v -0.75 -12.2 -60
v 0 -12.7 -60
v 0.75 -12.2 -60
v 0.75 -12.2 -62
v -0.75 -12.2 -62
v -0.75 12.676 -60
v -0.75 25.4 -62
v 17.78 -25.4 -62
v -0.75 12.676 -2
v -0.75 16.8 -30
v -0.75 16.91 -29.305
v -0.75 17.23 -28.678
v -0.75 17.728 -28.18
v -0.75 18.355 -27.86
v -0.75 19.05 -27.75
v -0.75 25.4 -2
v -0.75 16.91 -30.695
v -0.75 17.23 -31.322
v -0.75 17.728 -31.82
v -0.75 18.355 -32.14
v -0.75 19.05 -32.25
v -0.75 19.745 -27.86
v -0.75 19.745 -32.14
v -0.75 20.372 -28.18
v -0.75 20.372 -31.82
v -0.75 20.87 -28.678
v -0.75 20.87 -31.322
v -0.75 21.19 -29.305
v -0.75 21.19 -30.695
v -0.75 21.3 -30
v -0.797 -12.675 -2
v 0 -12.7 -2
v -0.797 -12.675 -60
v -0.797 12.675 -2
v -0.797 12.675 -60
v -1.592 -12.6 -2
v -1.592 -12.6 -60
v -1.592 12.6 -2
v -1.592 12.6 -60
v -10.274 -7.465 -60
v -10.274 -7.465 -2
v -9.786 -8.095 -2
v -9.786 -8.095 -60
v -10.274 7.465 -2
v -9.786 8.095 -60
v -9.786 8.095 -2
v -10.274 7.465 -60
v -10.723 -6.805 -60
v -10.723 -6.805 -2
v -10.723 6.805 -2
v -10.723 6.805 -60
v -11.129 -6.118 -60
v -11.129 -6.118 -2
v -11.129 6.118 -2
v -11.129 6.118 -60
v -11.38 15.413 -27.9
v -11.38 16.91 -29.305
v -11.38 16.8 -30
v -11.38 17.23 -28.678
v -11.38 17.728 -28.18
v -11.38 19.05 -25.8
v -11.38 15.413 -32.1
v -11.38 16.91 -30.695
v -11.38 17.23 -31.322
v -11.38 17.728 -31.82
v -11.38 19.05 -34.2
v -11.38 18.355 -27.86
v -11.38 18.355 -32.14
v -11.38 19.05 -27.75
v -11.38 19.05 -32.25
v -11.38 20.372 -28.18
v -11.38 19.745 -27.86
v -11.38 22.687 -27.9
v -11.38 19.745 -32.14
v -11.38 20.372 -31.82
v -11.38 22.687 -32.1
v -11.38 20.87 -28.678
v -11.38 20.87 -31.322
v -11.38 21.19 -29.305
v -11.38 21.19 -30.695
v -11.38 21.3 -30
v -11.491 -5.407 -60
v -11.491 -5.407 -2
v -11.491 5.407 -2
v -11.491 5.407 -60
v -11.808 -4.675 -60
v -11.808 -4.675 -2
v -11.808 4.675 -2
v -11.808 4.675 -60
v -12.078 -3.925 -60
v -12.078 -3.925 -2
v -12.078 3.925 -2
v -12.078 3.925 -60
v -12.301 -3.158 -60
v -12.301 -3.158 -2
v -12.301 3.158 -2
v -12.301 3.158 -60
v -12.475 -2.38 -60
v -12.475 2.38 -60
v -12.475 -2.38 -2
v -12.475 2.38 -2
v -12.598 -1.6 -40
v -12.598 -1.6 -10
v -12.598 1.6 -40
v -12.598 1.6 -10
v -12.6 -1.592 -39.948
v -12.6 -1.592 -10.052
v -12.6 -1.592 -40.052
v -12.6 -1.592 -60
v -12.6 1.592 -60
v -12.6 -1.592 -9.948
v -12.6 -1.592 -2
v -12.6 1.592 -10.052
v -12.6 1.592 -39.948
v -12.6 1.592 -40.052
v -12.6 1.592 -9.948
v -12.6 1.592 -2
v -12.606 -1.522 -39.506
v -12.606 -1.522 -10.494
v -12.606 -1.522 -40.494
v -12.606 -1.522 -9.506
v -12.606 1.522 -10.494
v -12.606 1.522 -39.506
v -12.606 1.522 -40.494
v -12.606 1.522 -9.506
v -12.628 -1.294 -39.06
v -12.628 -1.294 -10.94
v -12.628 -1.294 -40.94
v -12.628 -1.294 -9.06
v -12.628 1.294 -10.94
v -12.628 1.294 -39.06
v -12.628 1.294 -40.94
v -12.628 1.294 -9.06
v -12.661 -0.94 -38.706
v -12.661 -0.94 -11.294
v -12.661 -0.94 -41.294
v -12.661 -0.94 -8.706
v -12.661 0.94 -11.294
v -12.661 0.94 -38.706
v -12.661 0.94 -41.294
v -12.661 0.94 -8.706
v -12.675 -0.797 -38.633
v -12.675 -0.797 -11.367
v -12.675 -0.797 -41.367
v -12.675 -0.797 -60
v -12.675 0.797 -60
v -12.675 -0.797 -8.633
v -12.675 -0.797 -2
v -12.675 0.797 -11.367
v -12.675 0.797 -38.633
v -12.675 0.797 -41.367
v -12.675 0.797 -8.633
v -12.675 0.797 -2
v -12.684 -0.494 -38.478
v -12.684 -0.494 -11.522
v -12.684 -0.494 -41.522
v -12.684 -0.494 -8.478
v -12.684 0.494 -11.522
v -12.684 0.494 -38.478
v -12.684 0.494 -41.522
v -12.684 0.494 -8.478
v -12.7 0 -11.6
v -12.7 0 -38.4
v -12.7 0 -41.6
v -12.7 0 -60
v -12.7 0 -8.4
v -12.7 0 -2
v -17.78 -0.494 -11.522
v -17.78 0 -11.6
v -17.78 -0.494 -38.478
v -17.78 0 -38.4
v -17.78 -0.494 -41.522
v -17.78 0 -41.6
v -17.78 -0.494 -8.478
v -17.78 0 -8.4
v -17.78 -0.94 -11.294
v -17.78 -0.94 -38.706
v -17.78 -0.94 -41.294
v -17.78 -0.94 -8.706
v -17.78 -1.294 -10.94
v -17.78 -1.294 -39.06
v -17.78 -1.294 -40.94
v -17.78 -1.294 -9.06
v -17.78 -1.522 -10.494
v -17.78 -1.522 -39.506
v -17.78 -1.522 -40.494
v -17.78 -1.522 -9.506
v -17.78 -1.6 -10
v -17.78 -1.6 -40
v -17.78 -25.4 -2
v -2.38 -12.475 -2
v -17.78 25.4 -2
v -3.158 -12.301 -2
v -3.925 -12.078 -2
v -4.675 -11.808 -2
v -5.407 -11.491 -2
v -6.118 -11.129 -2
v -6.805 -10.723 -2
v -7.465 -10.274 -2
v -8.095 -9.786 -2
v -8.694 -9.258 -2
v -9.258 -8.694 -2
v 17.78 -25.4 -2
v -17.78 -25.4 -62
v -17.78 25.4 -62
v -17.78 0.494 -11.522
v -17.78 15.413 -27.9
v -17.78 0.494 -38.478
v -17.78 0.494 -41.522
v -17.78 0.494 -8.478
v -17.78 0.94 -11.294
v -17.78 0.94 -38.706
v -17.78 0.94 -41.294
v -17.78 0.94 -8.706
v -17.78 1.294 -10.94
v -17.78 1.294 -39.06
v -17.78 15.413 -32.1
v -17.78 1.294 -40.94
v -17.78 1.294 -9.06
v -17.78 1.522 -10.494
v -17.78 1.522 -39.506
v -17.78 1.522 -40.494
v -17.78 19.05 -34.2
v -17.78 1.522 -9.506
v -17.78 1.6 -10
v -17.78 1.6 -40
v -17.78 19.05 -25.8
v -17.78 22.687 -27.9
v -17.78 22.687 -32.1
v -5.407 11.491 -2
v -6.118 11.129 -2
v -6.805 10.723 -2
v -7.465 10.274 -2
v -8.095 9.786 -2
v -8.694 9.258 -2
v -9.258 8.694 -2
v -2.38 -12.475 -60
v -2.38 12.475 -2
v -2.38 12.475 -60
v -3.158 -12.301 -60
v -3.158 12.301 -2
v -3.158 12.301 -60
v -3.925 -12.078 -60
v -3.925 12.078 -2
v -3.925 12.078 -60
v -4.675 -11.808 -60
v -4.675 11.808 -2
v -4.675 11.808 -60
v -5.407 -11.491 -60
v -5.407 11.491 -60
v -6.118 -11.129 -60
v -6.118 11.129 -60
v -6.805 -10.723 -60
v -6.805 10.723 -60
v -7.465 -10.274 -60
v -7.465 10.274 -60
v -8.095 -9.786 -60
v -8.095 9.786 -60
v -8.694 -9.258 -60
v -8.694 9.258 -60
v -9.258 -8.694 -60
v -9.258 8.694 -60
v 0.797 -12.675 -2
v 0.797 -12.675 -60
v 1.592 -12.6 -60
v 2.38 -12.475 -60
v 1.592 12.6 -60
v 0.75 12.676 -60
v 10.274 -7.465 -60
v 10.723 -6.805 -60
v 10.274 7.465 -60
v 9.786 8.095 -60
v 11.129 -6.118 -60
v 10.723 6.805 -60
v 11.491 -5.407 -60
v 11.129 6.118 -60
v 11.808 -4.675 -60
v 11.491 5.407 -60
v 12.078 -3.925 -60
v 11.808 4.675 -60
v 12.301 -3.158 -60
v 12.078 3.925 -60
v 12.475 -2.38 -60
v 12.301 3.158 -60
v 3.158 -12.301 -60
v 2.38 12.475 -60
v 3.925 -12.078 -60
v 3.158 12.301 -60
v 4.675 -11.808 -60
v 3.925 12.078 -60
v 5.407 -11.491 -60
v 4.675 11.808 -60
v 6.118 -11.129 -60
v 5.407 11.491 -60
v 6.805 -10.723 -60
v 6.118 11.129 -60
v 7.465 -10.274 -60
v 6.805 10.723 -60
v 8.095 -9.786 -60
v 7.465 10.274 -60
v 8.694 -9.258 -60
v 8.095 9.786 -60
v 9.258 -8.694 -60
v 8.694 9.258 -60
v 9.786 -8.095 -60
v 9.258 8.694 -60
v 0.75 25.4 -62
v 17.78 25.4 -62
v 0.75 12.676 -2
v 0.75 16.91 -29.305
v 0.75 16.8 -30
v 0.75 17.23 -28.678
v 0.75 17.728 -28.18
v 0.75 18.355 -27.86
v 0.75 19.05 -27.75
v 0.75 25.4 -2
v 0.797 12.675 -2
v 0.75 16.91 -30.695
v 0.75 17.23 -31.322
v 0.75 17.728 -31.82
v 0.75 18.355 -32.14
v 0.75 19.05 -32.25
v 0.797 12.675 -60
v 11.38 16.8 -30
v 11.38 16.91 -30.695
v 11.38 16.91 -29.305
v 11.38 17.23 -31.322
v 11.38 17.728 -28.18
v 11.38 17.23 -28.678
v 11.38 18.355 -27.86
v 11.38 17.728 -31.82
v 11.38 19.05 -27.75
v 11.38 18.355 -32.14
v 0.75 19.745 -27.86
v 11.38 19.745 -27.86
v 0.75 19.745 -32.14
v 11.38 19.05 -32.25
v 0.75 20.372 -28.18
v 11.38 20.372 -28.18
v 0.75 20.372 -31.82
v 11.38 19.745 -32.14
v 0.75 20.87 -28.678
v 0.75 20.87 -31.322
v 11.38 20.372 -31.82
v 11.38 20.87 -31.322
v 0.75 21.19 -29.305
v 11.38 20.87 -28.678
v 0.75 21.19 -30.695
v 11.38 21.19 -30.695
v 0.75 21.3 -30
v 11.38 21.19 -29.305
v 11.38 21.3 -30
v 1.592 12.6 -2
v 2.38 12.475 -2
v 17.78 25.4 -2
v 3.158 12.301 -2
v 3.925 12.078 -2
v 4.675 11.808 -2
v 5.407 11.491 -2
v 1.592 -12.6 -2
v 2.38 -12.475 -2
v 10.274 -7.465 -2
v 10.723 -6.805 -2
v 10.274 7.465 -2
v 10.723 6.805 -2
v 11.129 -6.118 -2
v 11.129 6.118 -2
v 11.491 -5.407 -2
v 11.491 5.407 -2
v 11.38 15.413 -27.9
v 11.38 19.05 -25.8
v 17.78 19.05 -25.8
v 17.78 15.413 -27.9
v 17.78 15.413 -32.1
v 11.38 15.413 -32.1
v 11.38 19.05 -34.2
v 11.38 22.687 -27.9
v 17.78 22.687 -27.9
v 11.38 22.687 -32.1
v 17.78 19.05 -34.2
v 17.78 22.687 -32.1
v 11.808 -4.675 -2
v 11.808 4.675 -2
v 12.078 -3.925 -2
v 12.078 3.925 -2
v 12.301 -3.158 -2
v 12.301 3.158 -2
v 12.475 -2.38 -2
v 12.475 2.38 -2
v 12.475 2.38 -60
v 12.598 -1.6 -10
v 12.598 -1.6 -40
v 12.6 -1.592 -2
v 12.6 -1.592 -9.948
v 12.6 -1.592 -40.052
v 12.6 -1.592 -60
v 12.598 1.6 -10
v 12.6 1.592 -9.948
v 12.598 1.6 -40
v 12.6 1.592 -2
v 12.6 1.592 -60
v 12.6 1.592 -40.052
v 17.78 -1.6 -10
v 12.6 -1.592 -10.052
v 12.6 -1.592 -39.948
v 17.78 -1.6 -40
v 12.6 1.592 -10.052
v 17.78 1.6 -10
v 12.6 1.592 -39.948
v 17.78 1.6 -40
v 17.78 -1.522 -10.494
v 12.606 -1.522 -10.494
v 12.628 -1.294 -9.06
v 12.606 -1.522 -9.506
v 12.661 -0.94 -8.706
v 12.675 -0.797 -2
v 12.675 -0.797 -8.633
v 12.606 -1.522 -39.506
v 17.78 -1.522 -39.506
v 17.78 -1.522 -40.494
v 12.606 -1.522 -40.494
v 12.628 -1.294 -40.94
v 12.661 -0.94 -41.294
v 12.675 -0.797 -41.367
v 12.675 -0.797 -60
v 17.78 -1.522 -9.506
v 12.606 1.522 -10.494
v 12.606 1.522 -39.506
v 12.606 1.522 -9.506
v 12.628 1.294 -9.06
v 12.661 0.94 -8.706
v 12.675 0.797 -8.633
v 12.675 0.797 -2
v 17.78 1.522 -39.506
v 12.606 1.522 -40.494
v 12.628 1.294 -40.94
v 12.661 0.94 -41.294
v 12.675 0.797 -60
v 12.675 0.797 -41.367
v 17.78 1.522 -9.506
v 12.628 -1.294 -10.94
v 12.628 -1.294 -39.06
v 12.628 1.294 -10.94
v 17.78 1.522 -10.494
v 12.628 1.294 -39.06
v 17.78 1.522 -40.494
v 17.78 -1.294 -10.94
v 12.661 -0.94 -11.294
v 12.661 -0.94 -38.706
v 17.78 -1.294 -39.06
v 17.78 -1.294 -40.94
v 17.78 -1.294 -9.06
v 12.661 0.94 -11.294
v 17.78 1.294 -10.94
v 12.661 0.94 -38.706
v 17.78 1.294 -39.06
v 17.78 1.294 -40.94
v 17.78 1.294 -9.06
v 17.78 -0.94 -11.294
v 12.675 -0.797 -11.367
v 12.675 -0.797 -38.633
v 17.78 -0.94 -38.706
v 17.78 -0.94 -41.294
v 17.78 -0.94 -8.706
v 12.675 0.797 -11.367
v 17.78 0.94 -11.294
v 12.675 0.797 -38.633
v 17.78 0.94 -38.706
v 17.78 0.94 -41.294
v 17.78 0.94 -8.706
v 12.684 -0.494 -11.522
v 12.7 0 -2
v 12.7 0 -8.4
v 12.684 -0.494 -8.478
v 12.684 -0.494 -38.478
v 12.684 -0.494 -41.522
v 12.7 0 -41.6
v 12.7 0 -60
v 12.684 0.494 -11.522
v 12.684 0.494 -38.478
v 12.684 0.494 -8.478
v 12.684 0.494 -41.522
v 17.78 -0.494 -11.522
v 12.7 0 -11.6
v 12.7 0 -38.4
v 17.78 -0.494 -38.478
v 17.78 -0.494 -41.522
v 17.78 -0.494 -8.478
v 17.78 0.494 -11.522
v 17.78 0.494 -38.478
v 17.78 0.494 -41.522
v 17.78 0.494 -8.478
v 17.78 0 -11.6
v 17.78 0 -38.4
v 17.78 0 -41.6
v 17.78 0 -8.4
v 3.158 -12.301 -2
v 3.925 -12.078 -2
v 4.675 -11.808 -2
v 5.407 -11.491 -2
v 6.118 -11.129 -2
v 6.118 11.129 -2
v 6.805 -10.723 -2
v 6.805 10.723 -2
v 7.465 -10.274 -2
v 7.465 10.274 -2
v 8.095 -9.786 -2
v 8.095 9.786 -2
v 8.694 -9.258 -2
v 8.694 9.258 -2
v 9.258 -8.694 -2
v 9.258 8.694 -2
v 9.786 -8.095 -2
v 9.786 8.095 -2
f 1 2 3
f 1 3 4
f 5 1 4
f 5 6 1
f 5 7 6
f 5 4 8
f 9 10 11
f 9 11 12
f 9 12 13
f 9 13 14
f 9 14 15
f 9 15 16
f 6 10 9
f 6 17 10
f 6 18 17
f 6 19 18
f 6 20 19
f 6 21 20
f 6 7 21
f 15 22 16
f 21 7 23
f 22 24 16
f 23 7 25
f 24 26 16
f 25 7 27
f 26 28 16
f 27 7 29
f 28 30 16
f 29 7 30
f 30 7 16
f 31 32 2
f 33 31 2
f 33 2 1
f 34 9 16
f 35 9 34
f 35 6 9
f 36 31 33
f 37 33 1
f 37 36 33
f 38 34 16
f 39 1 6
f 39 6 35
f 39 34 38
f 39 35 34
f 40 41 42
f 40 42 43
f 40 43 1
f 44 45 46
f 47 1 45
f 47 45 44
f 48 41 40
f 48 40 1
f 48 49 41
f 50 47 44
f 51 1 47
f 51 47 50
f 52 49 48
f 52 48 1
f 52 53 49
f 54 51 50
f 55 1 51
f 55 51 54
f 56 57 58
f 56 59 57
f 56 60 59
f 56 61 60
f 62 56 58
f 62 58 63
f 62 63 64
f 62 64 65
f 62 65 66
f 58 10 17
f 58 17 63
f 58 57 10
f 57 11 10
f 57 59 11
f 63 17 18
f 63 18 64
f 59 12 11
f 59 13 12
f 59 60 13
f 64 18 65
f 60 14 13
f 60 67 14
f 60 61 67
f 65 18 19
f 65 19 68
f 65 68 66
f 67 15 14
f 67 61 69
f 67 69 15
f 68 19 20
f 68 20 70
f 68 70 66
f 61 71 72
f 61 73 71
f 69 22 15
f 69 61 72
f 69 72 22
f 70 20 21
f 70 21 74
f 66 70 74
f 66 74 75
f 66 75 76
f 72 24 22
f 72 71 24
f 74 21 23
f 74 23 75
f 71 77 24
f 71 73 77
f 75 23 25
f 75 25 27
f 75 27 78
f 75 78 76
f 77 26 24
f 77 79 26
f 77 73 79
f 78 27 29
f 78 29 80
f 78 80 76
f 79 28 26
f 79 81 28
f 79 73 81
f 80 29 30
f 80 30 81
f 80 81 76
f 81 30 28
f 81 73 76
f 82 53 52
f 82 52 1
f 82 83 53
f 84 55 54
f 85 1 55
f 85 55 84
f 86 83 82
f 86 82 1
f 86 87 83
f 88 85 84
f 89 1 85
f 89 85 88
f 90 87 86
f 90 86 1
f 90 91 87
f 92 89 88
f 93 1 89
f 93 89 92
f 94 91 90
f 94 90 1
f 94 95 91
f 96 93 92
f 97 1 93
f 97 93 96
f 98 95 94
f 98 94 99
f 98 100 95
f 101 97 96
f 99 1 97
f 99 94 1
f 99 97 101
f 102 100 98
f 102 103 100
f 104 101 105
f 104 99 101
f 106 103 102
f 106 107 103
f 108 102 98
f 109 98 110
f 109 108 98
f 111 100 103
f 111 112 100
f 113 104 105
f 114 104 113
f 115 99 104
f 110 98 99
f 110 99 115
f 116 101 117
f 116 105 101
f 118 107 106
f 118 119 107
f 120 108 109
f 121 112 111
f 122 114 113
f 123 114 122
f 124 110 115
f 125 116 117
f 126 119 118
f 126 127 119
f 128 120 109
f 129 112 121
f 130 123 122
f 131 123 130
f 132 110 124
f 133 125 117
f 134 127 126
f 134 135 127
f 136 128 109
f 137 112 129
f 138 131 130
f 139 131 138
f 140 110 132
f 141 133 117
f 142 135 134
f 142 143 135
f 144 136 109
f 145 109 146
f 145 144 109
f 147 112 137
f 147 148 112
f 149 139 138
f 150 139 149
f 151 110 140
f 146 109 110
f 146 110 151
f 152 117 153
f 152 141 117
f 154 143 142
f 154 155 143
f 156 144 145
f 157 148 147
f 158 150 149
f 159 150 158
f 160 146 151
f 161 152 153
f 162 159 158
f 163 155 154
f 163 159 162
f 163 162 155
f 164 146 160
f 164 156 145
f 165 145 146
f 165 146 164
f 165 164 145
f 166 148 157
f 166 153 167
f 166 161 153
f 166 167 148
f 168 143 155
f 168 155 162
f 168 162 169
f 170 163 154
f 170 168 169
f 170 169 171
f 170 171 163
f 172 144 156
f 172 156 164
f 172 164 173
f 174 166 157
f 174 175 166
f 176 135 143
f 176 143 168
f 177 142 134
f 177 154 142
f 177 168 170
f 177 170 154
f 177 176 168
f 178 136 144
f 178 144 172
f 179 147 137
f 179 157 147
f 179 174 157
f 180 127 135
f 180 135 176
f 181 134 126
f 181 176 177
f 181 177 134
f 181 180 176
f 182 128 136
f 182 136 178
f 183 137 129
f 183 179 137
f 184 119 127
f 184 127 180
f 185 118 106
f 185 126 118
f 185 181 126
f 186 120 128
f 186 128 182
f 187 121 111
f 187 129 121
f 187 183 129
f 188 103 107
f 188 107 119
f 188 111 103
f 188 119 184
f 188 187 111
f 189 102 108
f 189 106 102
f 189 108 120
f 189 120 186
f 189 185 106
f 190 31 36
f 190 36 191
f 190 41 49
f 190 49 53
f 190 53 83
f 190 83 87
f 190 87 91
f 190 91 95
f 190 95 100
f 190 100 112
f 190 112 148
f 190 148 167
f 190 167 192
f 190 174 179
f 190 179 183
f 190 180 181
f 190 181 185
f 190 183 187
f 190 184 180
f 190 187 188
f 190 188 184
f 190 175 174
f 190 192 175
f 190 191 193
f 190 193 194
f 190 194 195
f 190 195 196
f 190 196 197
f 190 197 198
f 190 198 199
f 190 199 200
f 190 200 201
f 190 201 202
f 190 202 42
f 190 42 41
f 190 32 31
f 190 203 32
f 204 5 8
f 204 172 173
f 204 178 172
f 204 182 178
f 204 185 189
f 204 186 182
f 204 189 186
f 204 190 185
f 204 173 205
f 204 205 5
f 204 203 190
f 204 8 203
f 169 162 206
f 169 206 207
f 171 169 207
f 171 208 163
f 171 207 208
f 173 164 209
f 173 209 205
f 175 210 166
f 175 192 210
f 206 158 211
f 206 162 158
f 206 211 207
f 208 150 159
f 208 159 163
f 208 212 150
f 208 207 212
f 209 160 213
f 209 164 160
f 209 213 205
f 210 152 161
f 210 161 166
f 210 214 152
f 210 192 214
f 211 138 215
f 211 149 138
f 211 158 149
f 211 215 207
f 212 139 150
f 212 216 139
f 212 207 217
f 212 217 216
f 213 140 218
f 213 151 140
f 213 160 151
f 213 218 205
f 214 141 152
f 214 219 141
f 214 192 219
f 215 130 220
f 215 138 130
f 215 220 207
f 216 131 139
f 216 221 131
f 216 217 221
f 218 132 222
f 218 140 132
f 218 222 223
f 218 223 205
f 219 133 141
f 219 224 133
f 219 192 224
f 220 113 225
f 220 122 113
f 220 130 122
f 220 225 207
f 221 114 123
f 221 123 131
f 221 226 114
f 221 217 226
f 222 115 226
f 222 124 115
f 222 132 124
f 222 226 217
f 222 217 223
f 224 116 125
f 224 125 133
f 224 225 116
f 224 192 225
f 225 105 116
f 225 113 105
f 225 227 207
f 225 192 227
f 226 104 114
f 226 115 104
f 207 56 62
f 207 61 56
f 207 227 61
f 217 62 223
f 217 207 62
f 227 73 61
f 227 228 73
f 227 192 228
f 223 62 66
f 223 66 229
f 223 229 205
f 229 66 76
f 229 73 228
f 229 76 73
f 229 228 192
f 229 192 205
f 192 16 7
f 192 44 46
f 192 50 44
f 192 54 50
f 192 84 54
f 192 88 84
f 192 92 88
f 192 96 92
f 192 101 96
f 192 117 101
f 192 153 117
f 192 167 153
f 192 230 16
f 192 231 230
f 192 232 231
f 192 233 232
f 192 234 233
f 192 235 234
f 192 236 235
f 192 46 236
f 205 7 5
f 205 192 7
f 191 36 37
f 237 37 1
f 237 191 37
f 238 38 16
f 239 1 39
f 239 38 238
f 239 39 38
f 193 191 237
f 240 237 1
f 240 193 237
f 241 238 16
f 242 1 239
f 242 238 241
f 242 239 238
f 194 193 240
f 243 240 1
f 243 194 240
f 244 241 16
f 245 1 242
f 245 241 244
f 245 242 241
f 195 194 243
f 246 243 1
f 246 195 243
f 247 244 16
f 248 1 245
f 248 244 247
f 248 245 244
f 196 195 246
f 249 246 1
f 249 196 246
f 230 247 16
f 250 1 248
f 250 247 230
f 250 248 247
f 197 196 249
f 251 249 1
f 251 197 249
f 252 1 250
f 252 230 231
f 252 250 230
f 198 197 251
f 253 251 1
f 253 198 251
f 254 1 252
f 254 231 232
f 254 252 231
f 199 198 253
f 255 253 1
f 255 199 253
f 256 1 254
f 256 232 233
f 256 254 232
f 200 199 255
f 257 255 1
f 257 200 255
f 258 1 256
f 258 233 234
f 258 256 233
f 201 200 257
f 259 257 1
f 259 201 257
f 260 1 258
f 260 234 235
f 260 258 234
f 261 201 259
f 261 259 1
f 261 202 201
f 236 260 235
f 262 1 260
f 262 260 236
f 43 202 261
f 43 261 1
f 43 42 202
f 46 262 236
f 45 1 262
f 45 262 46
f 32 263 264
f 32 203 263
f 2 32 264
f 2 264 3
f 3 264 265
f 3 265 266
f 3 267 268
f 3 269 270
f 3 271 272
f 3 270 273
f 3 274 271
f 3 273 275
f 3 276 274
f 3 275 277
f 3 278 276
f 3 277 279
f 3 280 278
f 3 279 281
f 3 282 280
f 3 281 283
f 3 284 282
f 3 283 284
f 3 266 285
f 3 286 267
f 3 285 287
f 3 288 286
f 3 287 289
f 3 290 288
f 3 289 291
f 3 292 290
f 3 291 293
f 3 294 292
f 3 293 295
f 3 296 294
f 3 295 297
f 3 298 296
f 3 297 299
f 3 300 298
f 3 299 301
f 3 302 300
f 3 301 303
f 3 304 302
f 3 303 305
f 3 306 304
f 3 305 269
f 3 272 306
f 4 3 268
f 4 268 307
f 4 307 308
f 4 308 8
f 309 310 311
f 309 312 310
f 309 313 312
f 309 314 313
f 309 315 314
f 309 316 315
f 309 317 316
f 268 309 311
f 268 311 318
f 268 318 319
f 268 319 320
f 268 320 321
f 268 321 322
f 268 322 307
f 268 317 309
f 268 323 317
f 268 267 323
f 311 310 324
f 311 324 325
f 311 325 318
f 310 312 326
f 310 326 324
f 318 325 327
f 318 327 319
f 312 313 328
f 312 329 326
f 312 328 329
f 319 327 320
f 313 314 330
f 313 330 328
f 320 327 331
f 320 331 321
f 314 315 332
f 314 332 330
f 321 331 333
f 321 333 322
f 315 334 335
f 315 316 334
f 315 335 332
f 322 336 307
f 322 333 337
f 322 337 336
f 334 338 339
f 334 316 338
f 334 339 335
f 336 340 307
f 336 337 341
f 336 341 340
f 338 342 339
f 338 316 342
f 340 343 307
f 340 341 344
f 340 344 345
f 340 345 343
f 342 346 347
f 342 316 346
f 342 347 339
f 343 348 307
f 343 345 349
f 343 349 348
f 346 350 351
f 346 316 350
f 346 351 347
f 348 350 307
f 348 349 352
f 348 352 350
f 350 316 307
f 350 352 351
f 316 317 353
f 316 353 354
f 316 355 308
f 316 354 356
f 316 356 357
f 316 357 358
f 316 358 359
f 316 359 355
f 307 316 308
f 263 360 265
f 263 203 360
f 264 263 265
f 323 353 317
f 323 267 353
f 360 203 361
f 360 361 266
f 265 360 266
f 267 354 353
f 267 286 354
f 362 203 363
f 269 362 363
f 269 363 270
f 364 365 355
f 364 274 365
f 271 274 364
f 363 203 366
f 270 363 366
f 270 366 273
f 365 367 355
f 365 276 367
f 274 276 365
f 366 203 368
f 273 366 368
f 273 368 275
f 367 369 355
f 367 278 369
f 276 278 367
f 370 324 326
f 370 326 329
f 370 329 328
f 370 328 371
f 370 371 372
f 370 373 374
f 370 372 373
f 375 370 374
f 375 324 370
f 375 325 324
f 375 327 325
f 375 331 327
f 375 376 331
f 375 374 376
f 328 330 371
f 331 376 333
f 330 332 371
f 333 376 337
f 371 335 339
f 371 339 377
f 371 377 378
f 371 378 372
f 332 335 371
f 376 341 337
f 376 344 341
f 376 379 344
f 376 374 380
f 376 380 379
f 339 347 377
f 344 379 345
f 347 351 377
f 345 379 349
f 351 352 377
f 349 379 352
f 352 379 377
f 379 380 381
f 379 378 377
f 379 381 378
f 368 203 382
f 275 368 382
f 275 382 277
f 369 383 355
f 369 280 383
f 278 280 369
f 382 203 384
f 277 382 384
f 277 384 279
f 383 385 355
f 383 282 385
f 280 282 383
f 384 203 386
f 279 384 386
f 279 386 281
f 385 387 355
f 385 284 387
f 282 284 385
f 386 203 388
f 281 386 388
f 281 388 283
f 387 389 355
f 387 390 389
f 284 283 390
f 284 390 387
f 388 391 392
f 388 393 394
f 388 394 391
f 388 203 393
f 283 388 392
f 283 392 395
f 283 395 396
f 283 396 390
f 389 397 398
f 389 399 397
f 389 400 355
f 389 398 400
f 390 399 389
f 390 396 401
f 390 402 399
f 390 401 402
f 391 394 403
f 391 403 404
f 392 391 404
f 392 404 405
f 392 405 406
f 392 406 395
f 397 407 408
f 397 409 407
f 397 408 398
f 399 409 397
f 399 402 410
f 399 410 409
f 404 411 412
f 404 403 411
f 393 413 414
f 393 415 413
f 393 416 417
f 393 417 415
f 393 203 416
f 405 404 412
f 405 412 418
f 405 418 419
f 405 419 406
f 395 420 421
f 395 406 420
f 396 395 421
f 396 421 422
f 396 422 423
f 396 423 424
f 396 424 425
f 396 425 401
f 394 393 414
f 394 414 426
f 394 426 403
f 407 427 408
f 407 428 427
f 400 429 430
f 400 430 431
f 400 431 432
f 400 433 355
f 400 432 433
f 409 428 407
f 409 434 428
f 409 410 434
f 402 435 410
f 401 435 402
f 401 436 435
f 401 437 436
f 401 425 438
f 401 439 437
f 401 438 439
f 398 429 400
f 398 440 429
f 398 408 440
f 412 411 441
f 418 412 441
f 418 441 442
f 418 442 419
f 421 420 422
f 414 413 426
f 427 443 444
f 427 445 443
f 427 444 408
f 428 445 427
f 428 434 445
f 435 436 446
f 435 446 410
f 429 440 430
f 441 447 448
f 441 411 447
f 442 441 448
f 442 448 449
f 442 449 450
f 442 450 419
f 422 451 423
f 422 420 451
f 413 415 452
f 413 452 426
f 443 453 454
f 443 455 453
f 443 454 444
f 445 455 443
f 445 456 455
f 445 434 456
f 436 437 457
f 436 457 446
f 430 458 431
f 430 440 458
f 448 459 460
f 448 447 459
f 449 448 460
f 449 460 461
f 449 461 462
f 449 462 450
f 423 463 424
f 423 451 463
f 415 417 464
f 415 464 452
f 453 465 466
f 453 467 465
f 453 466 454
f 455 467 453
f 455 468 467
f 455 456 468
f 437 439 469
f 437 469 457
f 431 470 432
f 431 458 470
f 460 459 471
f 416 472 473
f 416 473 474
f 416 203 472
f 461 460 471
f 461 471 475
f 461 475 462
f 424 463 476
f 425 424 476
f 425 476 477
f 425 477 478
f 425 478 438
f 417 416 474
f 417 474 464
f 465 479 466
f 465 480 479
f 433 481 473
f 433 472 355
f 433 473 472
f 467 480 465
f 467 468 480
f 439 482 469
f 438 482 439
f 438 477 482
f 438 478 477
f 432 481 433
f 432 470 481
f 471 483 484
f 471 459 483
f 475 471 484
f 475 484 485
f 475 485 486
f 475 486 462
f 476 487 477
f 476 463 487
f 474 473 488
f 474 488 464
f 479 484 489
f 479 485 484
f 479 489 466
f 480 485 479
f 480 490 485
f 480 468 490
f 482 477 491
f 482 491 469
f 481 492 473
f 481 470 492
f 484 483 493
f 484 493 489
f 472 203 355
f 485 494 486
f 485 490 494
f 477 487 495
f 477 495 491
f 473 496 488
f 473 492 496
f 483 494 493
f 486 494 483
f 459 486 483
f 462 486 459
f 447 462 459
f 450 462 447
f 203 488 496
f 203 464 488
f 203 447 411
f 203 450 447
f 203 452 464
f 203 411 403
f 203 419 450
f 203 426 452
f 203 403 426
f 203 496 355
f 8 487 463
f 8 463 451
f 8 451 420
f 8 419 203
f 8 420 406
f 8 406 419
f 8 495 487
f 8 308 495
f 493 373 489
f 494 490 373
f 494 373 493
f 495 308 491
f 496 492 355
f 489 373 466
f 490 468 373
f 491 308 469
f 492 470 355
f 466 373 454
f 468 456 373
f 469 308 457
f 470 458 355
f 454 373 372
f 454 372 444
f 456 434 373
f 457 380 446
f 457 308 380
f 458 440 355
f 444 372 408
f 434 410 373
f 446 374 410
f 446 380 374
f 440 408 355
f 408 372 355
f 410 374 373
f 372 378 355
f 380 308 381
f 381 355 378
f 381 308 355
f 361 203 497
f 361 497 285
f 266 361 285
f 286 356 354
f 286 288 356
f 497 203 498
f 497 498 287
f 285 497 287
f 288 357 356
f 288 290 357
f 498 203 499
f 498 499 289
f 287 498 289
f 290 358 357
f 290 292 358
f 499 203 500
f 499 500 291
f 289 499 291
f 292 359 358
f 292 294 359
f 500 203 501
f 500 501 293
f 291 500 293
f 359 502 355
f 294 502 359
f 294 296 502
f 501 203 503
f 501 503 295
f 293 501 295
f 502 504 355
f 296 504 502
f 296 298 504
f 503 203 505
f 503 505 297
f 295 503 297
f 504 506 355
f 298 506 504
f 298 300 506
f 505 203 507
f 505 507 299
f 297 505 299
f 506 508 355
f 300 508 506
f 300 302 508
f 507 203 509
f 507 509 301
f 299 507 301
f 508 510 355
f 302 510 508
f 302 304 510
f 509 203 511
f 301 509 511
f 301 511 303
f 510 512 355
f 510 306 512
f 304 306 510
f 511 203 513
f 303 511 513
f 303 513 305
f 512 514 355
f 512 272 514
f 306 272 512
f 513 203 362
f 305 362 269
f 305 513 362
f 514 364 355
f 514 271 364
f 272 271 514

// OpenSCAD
// file: ../../lib/TextGenerator.scad
//Draw text
scale([4,4,4]) drawtext("Hello World!");

//Draw character set
//scale([2,2,2]) drawtext(" !\"#$%&'()*+,-./0123456789:;<=>?@ABCDEFGHIJKLMNOPQRSTUVWXYZ[\\]^_`abcdefghijklmnopqrstuvwxyz{|}");

module drawtext(text,center=false) {
	//Characters
	chars = " !\"#$%&'()*+,-./0123456789:;<=>?@ABCDEFGHIJKLMNOPQRSTUVWXYZ[\\]^_`abcdefghijklmnopqrstuvwxyz{|}";

	//Chracter table defining 5x7 characters
	//Adapted from: http://www.geocities.com/dinceraydin/djlcdsim/chartable.js
	char_table = [ [ 0, 0, 0, 0, 0, 0, 0],
                  [ 4, 0, 4, 4, 4, 4, 4],
                  [ 0, 0, 0, 0,10,10,10],
                  [10,10,31,10,31,10,10],
                  [ 4,30, 5,14,20,15, 4],
                  [ 3,19, 8, 4, 2,25,24],
                  [13,18,21, 8,20,18,12],
                  [ 0, 0, 0, 0, 8, 4,12],
                  [ 2, 4, 8, 8, 8, 4, 2],
                  [ 8, 4, 2, 2, 2, 4, 8],
                  [ 0, 4,21,14,21, 4, 0],
                  [ 0, 4, 4,31, 4, 4, 0],
                  [ 8, 4,12, 0, 0, 0, 0],
                  [ 0, 0, 0,31, 0, 0, 0],
                  [12,12, 0, 0, 0, 0, 0],
                  [ 0,16, 8, 4, 2, 1, 0],
                  [14,17,25,21,19,17,14],
                  [14, 4, 4, 4, 4,12, 4],
                  [31, 8, 4, 2, 1,17,14],
                  [14,17, 1, 2, 4, 2,31],
                  [ 2, 2,31,18,10, 6, 2],
                  [14,17, 1, 1,30,16,31],
                  [14,17,17,30,16, 8, 6],
                  [ 8, 8, 8, 4, 2, 1,31],
                  [14,17,17,14,17,17,14],
                  [12, 2, 1,15,17,17,14],
                  [ 0,12,12, 0,12,12, 0],
                  [ 8, 4,12, 0,12,12, 0],
                  [ 2, 4, 8,16, 8, 4, 2],
                  [ 0, 0,31, 0,31, 0, 0],
                  [16, 8, 4, 2, 4, 8,16],
                  [ 4, 0, 4, 2, 1,17,14],
                  [14,21,21,13, 1,17,14],
                  [17,17,31,17,17,17,14],
                  [30,17,17,30,17,17,30],
                  [14,17,16,16,16,17,14],
                  [30,17,17,17,17,17,30],
                  [31,16,16,30,16,16,31],
                  [16,16,16,30,16,16,31],
                  [15,17,17,23,16,17,14],
                  [17,17,17,31,17,17,17],
                  [14, 4, 4, 4, 4, 4,14],
                  [12,18, 2, 2, 2, 2, 7],
                  [17,18,20,24,20,18,17],
                  [31,16,16,16,16,16,16],
                  [17,17,17,21,21,27,17],
                  [17,17,19,21,25,17,17],
                  [14,17,17,17,17,17,14],
                  [16,16,16,30,17,17,30],
                  [13,18,21,17,17,17,14],
                  [17,18,20,30,17,17,30],
                  [30, 1, 1,14,16,16,15],
                  [ 4, 4, 4, 4, 4, 4,31],
                  [14,17,17,17,17,17,17],
                  [ 4,10,17,17,17,17,17],
                  [10,21,21,21,17,17,17],
                  [17,17,10, 4,10,17,17],
                  [ 4, 4, 4,10,17,17,17],
                  [31,16, 8, 4, 2, 1,31],
                  [14, 8, 8, 8, 8, 8,14],
                  [ 0, 1, 2, 4, 8,16, 0],
                  [14, 2, 2, 2, 2, 2,14],
                  [ 0, 0, 0, 0,17,10, 4],
                  [31, 0, 0, 0, 0, 0, 0],
                  [ 0, 0, 0, 0, 2, 4, 8],
                  [15,17,15, 1,14, 0, 0],
                  [30,17,17,25,22,16,16],
                  [14,17,16,16,14, 0, 0],
                  [15,17,17,19,13, 1, 1],
                  [14,16,31,17,14, 0, 0],
                  [ 8, 8, 8,28, 8, 9, 6],
                  [14, 1,15,17,15, 0, 0],
                  [17,17,17,25,22,16,16],
                  [14, 4, 4, 4,12, 0, 4],
                  [12,18, 2, 2, 2, 6, 2],
                  [18,20,24,20,18,16,16],
                  [14, 4, 4, 4, 4, 4,12],
                  [17,17,21,21,26, 0, 0],
                  [17,17,17,25,22, 0, 0],
                  [14,17,17,17,14, 0, 0],
                  [16,16,30,17,30, 0, 0],
                  [ 1, 1,15,19,13, 0, 0],
                  [16,16,16,25,22, 0, 0],
                  [30, 1,14,16,15, 0, 0],
                  [ 6, 9, 8, 8,28, 8, 8],
                  [13,19,17,17,17, 0, 0],
                  [ 4,10,17,17,17, 0, 0],
                  [10,21,21,17,17, 0, 0],
                  [17,10, 4,10,17, 0, 0],
                  [14, 1,15,17,17, 0, 0],
                  [31, 8, 4, 2,31, 0, 0],
                  [ 2, 4, 4, 8, 4, 4, 2],
                  [ 4, 4, 4, 4, 4, 4, 4],
                  [ 8, 4, 4, 2, 4, 4, 8] ];

	//Binary decode table
	dec_table = [ "00000", "00001", "00010", "00011", "00100", "00101",
  	            "00110", "00111", "01000", "01001", "01010", "01011",
  	            "01100", "01101", "01110", "01111", "10000", "10001",
  	            "10010", "10011", "10100", "10101", "10110", "10111",
	            "11000", "11001", "11010", "11011", "11100", "11101",
	            "11110", "11111" ];

    //Process string one character at a time
    for(itext = [0:len(text)-1]) {
        assign(length = len(text)) {
            //Convert character to index
            assign(ichar = search(text[itext],chars,1)[0]) {
                //Decode character - rows
                for(irow = [0:6]) {
                    assign(val = dec_table[char_table[ichar][irow]]) {
                        //Decode character - cols
                        for(icol = [0:4]) {
                            assign(bit = search(val[icol],"01",1)[0]) {
                                if(bit) {
                                    //Output cube
                                    if (center)
                                        translate([icol - 2.5 +
                                        (6*itext)-len(text)/2, irow-3.5,0])
                                            cube([1.0001,1.0001,1]);
                                    else {
                                        translate([icol + (6*itext), irow, 0])
                                            cube([1.0001,1.0001,1]);
                                    }
                                }
                            }
                        }
                    }
                }
            }
	}
}
}
// file: ../../lib/naca4.scad
// Naca4.scad - library for parametric airfoils of 4 digit NACA series
// Code: Rudolf Huttary, Berlin 
// June 2015
// commercial use prohibited


// general use: for more examples refer to sampler.scad
// naca = naca digits or 3el vector  (default = 12 or [0, 0, .12])
// L    = chord length [mm]      (default= 100)
// N    = # sample points        (default= 81)
// h    = height [mm]            (default= 1)
// open = close at the thin end? (default = true)
// two equivalent example calls
 airfoil(naca = 2408, L = 60, N=1001, h = 30, open = false); 
// airfoil(naca = [.2, .4, .32], L = 60, N=1001, h = 30, open = false); 

module help()
{
  echo(str("\n\nList of signatures in lib:\n=================\n", 
  "module airfoil(naca=2412, L = 100, N = 81, h = 1, open = false) - renders airfoil object\n", 
  "module airfoil(naca=[.2, .4, .12], L = 100, N = 81, h = 1, open = false) - renders airfoil object using percentage for camber,  camber distance and thicknes\n", 
  "function airfoil_data(naca=12, L = 100, N = 81, open = false)\n",
  "=================\n")); 
}

help(); 
// this is the object
module airfoil(naca=12, L = 100, N = 81, h = 1, open = false)
{
  linear_extrude(height = h)
  polygon(points = airfoil_data(naca, L, N, open)); 
}

module hollow_airfoil(lnaca=12, L = 100, N = 81, h = 1, open = false, wall_thickness = 1)
{
    if (open){
        linear_extrude(height = h)

        if (wall_thickness>0){
            difference(){
                polygon(points = airfoil_data(naca, L, N, false));
                offset(delta = - wall_thickness, chamfer = false) polygon(points = airfoil_data(naca, L, N, open = false));
            }
        }
        else{
            difference(){
                offset(delta = - wall_thickness, chamfer = false) polygon(points = airfoil_data(naca, L, N, open = false));
                polygon(points = airfoil_data(naca, L, N, false));
            }
        }
    }
    else{

        linear_extrude(height = abs(wall_thickness))
            polygon(points = airfoil_data(naca, L, N, false)); 

        linear_extrude(height = h)
            difference(){
                polygon(points = airfoil_data(naca, L, N, open));
                offset(delta = - wall_thickness) polygon(points = airfoil_data(naca, L, N, open = false));
            }

        translate([0,0, h - wall_thickness])
            linear_extrude(height = abs(wall_thickness))
                polygon(points = airfoil_data(naca, L, N, false)); 

    }
}


// this is the main function providing the airfoil data
function airfoil_data(naca=12, L = 100, N = 81, open = false) = 
  let(Na = len(naca)!=3?NACA(naca):naca)
  let(A = [.2969, -0.126, -.3516, .2843, open?-0.1015:-0.1036])
  [for (b=[-180:360/(N):179.99]) 
    let (x = (1-cos(b))/2)  
    let(yt = sign(b)*Na[2]/.2*(A*[sqrt(x), x, x*x, x*x*x, x*x*x*x])) 
    Na[0]==0?L*[x, yt]:L*camber(x, yt, Na[0], Na[1], sign(b))];  


function trailing_edge_angle(naca=12, open = false) = 
  let(Na = len(naca)!=3?NACA(naca):naca)
  let(A = [.2969, -0.126, -.3516, .2843, open?-0.1015:-0.1036])
  let (x =0.999)  // set x near to airfoil trailing edge
  let(yt = Na[2]/.2*(A*[sqrt(x), x, x*x, x*x*x, x*x*x*x])) // calculate distance from x-axis at previously set position
  atan2(yt,1-x);  // calculate angle of triangle between end of airfoil. The triange height corresponds to previously calculated distance from x-axis

function surface_angle(x = 0.5, naca=12, open = false) = 
  let(Na = len(naca)!=3?NACA(naca):naca)
  let(A = [0.2969, -0.126, -0.3516, 0.2843, open?-0.1015:-0.1036])
  let(dy = Na[2]/0.2*(A*[(1/2)*(1/sqrt(x)), 1, 2*x, 3*x*x, 4*x*x*x])) // calculate derivative of airfoil function at the x point
  atan(dy);  // calculate  the angle from function derivative

function surface_distance(x = 0.5, naca=12, open = false) = 
  let(Na = len(naca)!=3?NACA(naca):naca)
  let(A = [0.2969, -0.126, -0.3516, 0.2843, open?-0.1015:-0.1036])
  Na[2]/.2*(A*[sqrt(x), x, x*x, x*x*x, x*x*x*x]); // calculate distance from x-axis at previously set position

// helper functions
function NACA(naca) = 
  let (M = floor(naca/1000))
  let (P = floor((naca-M*1000)/100)) 
  [M/100, P/10, floor(naca-M*1000-P*100)/100];  

function camber(x, y, M, P, upper) = 
  let(yc = (x<P)?M/P/P*(2*P*x-x*x): M/(1-P)/(1-P)*(1 - 2*P + 2*P*x -x*x))
  let(dy = (x<P)?2*M/P/P*(P-x):2*M/(1-P)/(1-P)*(P-x))
  let(th = atan(dy))
  [upper ? x - y*sin(th):x + y*sin(th), upper ? yc + y*cos(th):yc - y*cos(th)];
// main file
include <../../../parameters.scad>

use <../../666_1028.scad>

rotate([0,180,0])
    666_1028_drillhelper(draft=false);
